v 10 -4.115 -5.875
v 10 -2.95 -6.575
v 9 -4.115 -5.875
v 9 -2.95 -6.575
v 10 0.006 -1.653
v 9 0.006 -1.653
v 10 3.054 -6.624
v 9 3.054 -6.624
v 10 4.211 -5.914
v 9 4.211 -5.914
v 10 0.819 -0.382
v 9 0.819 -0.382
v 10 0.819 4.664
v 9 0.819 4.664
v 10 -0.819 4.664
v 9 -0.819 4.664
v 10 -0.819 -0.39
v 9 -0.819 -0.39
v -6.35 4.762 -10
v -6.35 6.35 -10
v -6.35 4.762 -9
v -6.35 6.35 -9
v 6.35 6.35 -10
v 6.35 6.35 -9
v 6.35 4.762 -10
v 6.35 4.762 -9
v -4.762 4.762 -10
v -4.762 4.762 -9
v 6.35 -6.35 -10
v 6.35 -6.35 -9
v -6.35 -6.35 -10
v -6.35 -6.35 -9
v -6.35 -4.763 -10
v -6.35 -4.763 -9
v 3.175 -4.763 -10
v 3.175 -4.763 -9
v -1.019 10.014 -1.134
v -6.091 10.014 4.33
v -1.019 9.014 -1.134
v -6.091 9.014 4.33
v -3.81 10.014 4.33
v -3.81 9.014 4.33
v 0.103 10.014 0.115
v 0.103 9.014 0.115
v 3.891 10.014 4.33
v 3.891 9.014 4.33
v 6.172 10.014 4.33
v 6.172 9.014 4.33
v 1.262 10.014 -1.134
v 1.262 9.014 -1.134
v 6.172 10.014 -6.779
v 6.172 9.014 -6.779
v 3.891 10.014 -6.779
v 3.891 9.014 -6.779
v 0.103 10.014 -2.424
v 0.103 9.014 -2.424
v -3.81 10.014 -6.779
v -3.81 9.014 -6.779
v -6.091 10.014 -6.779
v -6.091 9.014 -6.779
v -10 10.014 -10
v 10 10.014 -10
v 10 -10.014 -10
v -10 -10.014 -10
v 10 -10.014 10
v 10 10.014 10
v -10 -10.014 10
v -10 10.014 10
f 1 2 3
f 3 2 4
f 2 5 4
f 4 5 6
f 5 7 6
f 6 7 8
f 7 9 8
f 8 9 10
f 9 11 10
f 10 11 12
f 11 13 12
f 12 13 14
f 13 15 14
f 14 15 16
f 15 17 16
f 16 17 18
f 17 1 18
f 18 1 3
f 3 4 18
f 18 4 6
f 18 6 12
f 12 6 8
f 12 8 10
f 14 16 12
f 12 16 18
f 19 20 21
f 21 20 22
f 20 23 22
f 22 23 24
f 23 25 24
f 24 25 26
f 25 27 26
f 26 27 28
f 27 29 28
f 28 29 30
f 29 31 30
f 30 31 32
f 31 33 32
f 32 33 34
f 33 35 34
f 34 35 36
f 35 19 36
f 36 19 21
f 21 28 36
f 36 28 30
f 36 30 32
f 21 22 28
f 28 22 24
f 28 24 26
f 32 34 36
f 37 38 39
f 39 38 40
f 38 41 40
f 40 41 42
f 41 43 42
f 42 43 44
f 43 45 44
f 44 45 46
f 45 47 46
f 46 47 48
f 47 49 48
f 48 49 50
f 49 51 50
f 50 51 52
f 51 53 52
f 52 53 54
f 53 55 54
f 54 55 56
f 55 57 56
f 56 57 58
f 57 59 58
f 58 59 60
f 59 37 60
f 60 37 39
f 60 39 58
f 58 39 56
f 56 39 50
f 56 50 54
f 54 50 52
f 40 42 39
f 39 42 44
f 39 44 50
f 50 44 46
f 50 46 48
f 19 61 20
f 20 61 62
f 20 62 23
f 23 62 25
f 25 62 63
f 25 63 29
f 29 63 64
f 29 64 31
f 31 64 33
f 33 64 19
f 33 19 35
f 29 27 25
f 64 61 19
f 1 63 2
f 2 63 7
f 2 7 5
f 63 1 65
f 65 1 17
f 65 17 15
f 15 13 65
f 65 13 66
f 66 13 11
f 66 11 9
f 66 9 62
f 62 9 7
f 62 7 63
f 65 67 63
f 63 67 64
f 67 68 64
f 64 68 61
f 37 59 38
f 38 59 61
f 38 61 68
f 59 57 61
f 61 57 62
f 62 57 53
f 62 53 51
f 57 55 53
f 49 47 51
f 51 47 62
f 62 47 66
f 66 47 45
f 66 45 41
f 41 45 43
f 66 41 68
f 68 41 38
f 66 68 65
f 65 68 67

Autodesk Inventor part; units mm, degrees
ref_plane "YZ Plane" through (0, 0, 0) normal (1, 0, 0) x (0, 1, 0)
ref_plane "XZ Plane" through (0, 0, 0) normal (0, 1, 0) x (-1, 0, 0)
ref_plane "XY Plane" through (0, 0, 0) normal (0, 0, 1) x (1, 0, 0)
sketch "Sketch1" plane through (0, 0, 0) normal (0, 0, 1) x (1, 0, 0)
  line L0 (10, -10.0138) -> (-10, -10.0138)
  line L1 (-10, -10.0138) -> (-10, 10.0138)
  line L2 (-10, 10.0138) -> (10, 10.0138)
  line L3 (10, 10.0138) -> (10, -10.0138)
  line L4 (10, -10.0138) -> (-10, 10.0138) construction
  line L5 (-10, -10.0138) -> (10, 10.0138) construction
  point P0 (0, 0)
  dimension "d0" = 20
extrude "Extrusion1" add sketch "Sketch1" along normal mid plane 20
sketch "Sketch2" plane through (0, 0, 10) normal (0, 0, 1) x (1, 0, 0)
  line L0 (10, 10.0138) -> (-10, 10.0138) projected
  line L1 (-10, 10.0138) -> (-10, -10.0138) projected
  line L2 (-10, -10.0138) -> (10, -10.0138) projected
  line L3 (10, -10.0138) -> (10, 10.0138) projected
  point P0 (0, 0)
sketch "Sketch3" plane through (-10, 10.0138, 10) normal (0, 1, 0) x (1, 0, 0)
  line L0 (10, 10) -> (3.9087, 16.7786)
  line L1 (3.9087, 16.7786) -> (6.1897, 16.7786)
  line L2 (6.1897, 16.7786) -> (11.262, 11.134)
  line L3 (11.262, 11.134) -> (16.1719, 5.6701)
  line L4 (16.1719, 5.6701) -> (13.8909, 5.6701)
  line L5 (13.8909, 5.6701) -> (10, 10)
  line L6 (11.262, 11.134) -> (16.1719, 16.7786)
  line L7 (16.1719, 16.7786) -> (13.8909, 16.7786)
  line L8 (13.8909, 16.7786) -> (10.1029, 12.4238)
  line L9 (3.9087, 5.6701) -> (8.981, 11.134)
  line L10 (10.1029, 9.8855) -> (6.1897, 5.6701)
  line L11 (6.1897, 5.6701) -> (3.9087, 5.6701)
extrude "Extrusion2" cut sketch "Sketch3" against normal blind 1
sketch "Sketch4" plane through (0, 0, -10) normal (0, 0, -1) x (-1, 0, 0)
  line L0 (6.35, -6.35) -> (-6.35, -6.35)
  line L1 (-6.35, -6.35) -> (6.35, 6.35)
  line L2 (6.35, 6.35) -> (-6.35, 6.35)
  line L3 (6.35, -6.35) -> (6.35, -4.7625)
  line L4 (6.35, -4.7625) -> (-3.175, -4.7625)
  line L5 (-3.175, -4.7625) -> (6.35, 4.7625)
  line L6 (6.35, 4.7625) -> (-6.35, 4.7625)
  line L7 (6.35, 4.7625) -> (6.35, 6.35)
  line L8 (-6.35, 4.7625) -> (-6.35, 6.35)
  line L9 (-4.7625, -6.35) -> (-3.175, -4.7625)
  point P0 (0, 0)
  point P1 (4.7625, 4.7625)
extrude "Extrusion3" cut sketch "Sketch4" against normal blind 1
sketch "Sketch5" plane through (10, -10.0138, 10) normal (1, 0, 0) x (0, 0, -1)
  line L0 (5.3355, 9.1946) -> (5.3355, 10.8331)
  line L1 (5.3355, 10.8331) -> (10.3819, 10.8331)
  line L2 (10.3897, 9.1946) -> (5.3355, 9.1946)
  line L3 (10.3819, 10.8331) -> (15.9139, 14.2248)
  line L4 (15.9139, 14.2248) -> (16.6235, 13.0674)
  line L5 (16.6235, 13.0674) -> (11.6534, 10.0201)
  line L6 (11.6534, 10.0201) -> (16.5746, 7.0635)
  line L7 (16.5746, 7.0635) -> (15.875, 5.899)
  line L8 (15.875, 5.899) -> (10.3897, 9.1946)
  point P0 (10, 10.0138)
  point P1 (5.3355, 10.0138)
extrude "Extrusion4" cut sketch "Sketch5" against normal blind 1
equation "\"d1\" = d0"
properties part number "Cubo-001-001_3DPrint"
